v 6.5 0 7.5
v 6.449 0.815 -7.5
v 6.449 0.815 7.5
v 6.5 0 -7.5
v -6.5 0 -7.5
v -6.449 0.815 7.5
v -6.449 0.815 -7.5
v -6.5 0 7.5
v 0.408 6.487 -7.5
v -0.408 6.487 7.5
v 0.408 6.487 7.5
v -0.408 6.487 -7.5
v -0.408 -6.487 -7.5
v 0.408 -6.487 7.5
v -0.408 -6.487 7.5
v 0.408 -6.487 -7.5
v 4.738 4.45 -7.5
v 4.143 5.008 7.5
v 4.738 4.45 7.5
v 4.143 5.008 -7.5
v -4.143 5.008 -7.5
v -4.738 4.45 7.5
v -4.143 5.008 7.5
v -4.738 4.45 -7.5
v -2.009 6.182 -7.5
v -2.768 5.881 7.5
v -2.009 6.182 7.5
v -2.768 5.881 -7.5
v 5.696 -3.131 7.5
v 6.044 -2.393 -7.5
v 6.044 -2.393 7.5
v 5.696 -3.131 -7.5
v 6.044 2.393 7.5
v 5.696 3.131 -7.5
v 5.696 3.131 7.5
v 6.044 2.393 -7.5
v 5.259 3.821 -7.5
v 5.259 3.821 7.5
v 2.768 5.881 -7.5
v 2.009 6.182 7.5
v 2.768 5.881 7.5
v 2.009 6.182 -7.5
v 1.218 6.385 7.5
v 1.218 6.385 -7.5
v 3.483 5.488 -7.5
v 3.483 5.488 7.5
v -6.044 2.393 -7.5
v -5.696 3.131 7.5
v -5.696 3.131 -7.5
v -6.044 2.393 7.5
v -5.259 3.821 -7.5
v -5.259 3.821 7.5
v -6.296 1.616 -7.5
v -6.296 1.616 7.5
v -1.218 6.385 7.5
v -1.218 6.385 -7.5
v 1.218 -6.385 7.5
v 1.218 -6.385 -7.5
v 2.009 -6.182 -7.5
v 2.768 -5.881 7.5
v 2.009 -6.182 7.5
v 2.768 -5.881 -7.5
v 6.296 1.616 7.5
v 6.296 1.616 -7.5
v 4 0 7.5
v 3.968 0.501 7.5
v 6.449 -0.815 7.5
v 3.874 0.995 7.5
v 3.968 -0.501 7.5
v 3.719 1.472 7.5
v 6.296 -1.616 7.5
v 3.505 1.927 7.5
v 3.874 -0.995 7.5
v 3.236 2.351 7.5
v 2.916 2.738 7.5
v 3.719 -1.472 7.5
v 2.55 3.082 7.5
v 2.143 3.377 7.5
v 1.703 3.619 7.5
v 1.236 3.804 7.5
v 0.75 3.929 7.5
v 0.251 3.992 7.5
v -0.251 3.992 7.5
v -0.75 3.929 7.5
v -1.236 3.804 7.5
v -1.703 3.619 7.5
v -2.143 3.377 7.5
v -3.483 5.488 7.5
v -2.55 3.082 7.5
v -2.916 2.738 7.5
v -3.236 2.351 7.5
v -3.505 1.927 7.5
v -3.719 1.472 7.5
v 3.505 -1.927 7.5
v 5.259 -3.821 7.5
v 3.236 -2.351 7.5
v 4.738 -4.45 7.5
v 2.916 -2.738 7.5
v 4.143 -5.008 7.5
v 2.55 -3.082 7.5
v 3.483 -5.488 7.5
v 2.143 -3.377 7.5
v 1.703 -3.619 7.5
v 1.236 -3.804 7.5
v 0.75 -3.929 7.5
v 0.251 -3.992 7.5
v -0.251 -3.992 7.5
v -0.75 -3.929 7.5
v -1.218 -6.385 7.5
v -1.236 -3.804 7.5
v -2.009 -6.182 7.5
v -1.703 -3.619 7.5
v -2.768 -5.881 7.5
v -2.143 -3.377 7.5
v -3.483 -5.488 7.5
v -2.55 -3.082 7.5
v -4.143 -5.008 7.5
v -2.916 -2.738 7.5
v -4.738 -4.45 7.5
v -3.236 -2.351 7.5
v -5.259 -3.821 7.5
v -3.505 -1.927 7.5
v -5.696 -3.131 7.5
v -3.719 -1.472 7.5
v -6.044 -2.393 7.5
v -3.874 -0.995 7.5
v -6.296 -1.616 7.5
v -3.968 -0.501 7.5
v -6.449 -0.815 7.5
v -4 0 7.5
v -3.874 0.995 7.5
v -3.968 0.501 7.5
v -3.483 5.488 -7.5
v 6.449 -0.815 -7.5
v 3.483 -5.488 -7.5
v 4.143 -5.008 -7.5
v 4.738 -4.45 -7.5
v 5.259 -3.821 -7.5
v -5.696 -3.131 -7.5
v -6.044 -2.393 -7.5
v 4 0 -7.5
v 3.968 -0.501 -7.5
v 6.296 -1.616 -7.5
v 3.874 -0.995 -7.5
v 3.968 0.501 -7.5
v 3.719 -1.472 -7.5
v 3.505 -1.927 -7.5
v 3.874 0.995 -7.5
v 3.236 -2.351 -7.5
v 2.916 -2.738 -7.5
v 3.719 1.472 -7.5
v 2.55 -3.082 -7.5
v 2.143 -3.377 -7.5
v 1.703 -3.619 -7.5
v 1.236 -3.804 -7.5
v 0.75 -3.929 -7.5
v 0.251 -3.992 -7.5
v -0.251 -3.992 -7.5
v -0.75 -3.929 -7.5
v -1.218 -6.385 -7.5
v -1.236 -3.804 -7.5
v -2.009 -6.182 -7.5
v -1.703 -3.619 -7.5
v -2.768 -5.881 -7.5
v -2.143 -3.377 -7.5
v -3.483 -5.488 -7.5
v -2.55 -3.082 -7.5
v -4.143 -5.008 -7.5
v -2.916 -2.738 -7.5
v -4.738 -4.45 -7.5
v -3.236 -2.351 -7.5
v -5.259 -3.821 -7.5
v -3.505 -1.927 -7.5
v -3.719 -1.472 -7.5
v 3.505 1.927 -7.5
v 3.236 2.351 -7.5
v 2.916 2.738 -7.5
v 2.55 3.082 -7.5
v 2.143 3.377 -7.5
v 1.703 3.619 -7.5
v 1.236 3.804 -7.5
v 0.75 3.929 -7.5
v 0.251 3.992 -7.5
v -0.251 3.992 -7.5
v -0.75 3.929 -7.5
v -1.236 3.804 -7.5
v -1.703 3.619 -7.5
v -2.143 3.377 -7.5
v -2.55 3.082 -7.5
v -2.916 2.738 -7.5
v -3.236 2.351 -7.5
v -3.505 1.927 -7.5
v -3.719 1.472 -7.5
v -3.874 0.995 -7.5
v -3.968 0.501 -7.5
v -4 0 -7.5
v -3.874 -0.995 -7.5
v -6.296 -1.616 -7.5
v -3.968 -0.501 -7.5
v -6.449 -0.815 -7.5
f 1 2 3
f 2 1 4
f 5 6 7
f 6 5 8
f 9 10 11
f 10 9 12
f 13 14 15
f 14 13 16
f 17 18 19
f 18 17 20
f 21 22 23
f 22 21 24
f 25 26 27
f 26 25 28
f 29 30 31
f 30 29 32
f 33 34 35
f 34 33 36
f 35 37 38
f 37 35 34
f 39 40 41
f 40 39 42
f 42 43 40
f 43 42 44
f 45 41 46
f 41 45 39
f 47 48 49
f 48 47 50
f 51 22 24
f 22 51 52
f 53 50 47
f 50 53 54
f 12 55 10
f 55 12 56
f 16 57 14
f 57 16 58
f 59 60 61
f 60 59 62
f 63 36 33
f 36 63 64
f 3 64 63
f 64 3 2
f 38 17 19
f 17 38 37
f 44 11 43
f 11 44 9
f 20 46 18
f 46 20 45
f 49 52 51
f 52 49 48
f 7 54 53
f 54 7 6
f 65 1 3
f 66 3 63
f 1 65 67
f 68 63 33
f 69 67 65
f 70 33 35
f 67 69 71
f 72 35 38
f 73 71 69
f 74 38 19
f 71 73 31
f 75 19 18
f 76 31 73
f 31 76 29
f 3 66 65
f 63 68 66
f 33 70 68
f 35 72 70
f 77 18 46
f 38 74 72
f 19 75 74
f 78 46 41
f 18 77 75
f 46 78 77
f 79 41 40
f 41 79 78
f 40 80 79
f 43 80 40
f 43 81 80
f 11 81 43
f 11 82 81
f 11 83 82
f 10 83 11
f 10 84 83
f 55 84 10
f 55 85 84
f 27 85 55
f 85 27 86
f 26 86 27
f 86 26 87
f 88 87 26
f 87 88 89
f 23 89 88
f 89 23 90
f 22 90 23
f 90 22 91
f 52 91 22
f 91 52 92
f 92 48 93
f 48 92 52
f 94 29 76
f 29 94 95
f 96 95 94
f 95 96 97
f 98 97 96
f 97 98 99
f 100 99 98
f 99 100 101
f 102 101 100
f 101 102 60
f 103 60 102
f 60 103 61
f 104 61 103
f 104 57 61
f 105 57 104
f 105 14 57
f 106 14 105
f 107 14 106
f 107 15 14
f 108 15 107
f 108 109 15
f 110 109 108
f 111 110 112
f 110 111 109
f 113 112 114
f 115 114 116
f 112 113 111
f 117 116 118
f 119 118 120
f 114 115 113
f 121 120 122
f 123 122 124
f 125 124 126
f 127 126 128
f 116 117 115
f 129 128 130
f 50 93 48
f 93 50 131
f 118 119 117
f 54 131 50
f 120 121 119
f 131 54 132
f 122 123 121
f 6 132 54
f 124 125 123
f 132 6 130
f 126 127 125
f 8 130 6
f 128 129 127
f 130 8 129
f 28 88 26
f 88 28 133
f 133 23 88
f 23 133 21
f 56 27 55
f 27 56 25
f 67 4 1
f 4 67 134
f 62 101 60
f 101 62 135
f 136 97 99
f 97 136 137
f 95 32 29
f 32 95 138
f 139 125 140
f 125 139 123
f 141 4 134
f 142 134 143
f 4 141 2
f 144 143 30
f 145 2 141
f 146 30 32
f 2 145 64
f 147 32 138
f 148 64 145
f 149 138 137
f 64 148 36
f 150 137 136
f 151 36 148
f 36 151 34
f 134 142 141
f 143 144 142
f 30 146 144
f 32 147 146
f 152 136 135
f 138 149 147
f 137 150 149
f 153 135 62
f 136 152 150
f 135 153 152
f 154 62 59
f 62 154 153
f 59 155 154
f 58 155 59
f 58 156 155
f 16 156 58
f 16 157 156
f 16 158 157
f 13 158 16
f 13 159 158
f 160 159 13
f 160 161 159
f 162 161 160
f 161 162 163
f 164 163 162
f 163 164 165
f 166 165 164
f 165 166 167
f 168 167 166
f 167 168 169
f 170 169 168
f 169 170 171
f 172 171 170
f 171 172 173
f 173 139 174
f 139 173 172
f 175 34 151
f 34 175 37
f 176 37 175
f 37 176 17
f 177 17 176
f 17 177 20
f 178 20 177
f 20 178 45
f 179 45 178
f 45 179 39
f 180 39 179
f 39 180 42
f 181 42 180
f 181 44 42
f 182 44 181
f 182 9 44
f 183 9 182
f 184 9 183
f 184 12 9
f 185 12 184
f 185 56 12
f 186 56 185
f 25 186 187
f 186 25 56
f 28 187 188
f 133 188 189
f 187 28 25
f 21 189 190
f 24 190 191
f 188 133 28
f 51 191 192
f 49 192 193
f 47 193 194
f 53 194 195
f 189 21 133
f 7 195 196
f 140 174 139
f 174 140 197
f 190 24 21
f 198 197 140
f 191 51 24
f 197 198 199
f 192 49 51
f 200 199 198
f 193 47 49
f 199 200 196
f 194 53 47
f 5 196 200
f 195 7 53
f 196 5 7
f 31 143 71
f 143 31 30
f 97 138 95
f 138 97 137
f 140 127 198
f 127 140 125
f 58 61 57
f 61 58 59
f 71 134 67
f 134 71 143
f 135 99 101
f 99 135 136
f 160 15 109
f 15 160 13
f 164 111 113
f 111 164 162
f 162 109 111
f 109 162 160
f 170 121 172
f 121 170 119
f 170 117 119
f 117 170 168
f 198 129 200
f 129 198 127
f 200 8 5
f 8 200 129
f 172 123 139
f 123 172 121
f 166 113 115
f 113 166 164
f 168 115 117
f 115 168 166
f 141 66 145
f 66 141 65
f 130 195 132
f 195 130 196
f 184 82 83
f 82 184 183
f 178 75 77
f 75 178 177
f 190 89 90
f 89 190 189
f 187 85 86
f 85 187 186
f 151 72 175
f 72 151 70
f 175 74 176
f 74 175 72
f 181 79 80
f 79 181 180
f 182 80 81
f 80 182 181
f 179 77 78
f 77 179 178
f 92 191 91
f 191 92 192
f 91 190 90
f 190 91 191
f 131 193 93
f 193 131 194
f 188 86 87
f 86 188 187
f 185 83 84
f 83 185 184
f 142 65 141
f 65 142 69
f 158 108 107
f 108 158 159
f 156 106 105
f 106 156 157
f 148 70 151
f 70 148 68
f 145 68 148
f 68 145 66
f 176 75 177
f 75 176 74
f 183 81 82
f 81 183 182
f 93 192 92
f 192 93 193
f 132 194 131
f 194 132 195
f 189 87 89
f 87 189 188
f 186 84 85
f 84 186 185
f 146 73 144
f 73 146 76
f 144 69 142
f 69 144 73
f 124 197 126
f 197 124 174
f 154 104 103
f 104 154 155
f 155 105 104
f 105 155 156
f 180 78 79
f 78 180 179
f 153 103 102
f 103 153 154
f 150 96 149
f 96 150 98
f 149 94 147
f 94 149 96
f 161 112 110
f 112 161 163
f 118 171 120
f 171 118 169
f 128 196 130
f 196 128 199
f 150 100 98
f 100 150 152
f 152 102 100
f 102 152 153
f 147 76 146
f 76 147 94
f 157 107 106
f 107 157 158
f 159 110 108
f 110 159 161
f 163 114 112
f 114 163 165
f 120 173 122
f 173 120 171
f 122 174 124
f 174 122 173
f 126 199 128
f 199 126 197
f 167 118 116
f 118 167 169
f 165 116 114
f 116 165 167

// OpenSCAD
$fn = 50;


difference() {
	union() {
		translate(v = [0, 0, -7.5000000000]) {
			cylinder(h = 15, r = 6.5000000000);
		}
	}
	union() {
		translate(v = [0, 0, -100.0000000000]) {
			cylinder(h = 200, r = 4);
		}
	}
}
